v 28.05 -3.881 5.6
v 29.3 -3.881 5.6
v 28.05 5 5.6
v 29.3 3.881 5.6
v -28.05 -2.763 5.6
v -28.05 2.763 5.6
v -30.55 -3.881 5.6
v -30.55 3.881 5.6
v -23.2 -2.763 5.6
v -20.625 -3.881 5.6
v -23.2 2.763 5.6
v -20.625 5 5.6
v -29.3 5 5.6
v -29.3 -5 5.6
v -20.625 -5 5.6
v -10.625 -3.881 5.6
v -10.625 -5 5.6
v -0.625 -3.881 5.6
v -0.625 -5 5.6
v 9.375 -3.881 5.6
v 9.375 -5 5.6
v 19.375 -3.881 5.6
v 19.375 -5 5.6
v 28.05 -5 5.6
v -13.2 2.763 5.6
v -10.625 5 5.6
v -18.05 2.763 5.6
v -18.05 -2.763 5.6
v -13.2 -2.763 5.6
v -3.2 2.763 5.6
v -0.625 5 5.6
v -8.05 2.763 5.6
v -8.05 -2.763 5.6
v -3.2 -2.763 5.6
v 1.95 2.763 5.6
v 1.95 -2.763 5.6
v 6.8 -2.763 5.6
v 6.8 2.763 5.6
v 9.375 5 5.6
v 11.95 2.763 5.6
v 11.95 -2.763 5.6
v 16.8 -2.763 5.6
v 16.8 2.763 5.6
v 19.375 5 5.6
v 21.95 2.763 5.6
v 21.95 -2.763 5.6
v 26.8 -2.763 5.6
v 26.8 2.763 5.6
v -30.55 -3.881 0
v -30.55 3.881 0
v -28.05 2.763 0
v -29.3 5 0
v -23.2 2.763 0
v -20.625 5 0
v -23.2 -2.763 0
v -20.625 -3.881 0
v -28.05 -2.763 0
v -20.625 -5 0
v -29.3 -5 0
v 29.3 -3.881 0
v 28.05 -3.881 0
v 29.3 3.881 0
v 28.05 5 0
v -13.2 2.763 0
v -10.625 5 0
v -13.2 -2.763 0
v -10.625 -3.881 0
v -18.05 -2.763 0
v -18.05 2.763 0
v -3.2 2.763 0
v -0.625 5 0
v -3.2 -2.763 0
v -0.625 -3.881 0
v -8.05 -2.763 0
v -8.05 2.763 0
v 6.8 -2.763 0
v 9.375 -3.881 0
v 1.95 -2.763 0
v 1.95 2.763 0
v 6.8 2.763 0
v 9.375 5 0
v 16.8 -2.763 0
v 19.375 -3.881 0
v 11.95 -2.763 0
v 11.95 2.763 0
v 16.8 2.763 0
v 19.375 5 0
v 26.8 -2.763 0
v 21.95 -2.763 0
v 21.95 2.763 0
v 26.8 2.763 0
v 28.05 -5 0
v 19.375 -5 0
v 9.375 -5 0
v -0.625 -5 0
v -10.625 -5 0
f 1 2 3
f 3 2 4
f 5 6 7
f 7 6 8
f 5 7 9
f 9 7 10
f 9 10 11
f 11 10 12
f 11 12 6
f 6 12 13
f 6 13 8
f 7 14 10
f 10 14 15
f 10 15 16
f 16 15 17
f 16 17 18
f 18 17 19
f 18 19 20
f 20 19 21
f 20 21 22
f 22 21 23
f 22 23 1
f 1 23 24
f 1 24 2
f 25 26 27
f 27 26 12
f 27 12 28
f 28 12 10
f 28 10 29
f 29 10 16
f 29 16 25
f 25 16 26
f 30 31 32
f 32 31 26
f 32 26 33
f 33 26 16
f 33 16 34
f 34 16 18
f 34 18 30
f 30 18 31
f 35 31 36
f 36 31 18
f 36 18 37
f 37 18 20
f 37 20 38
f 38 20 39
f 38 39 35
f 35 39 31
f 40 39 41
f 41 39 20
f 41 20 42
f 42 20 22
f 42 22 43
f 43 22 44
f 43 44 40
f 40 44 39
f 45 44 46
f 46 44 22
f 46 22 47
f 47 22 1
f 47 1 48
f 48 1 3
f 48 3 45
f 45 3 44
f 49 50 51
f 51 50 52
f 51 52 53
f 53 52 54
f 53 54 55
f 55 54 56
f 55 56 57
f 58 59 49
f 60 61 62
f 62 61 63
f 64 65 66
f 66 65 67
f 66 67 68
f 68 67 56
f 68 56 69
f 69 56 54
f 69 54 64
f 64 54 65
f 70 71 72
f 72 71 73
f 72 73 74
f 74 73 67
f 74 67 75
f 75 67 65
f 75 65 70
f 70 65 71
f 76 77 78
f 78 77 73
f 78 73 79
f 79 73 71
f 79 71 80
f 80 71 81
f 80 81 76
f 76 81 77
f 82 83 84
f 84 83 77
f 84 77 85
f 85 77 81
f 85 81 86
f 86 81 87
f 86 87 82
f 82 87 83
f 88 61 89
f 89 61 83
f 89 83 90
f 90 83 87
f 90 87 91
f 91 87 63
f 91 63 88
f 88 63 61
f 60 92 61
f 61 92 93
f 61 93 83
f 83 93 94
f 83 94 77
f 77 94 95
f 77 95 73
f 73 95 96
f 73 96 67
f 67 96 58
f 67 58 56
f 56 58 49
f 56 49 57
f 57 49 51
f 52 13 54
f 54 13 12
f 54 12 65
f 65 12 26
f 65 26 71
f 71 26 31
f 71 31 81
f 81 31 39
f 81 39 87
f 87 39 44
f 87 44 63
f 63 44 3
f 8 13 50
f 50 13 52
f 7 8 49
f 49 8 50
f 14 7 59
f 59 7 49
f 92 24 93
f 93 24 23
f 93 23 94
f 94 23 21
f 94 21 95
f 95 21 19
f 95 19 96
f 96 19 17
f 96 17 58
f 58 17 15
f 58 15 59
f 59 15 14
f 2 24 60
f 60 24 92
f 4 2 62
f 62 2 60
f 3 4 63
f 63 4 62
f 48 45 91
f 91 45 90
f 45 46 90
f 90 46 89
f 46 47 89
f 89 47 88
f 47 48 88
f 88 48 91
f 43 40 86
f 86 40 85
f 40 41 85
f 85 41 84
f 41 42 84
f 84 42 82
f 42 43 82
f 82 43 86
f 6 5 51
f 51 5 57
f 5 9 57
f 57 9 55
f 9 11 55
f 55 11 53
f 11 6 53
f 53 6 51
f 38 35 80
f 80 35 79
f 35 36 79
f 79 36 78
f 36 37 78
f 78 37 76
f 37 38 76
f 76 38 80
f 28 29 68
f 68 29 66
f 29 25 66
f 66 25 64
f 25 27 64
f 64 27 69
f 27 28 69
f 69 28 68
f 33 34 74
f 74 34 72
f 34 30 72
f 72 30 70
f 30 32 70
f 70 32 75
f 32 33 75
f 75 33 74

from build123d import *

# Parameters (mm, degrees)
SCHIZZO1_W                   = 4.85
SCHIZZO1_H                   = 5.525
ESTRUSIONE_ESTRUSIONE2_DEPTH = 5.6


with BuildPart() as part:
    # Schizzo1 → Estrusione-Estrusione2 (new body)
    with BuildSketch(Plane.XY):
        Polygon((-30.55, 3.88125), (-30.55, -3.88125), (-29.3, -5), (28.05, -5), (29.3, -3.88125), (29.3, 3.88125), (28.05, 5), (-29.3, 5), align=None)
        with Locations((-15.625, 0)):
            Rectangle(SCHIZZO1_W, SCHIZZO1_H, mode=Mode.SUBTRACT)
        with Locations((-25.625, 0)):
            Rectangle(SCHIZZO1_W, SCHIZZO1_H, mode=Mode.SUBTRACT)
        with Locations((-5.625, 0)):
            Rectangle(SCHIZZO1_W, SCHIZZO1_H, mode=Mode.SUBTRACT)
        with Locations((4.375, 0)):
            Rectangle(SCHIZZO1_W, SCHIZZO1_H, mode=Mode.SUBTRACT)
        with Locations((14.375, 0)):
            Rectangle(SCHIZZO1_W, SCHIZZO1_H, mode=Mode.SUBTRACT)
        with Locations((24.375, 0)):
            Rectangle(SCHIZZO1_W, SCHIZZO1_H, mode=Mode.SUBTRACT)
    extrude(amount=ESTRUSIONE_ESTRUSIONE2_DEPTH)


solid = part.part
